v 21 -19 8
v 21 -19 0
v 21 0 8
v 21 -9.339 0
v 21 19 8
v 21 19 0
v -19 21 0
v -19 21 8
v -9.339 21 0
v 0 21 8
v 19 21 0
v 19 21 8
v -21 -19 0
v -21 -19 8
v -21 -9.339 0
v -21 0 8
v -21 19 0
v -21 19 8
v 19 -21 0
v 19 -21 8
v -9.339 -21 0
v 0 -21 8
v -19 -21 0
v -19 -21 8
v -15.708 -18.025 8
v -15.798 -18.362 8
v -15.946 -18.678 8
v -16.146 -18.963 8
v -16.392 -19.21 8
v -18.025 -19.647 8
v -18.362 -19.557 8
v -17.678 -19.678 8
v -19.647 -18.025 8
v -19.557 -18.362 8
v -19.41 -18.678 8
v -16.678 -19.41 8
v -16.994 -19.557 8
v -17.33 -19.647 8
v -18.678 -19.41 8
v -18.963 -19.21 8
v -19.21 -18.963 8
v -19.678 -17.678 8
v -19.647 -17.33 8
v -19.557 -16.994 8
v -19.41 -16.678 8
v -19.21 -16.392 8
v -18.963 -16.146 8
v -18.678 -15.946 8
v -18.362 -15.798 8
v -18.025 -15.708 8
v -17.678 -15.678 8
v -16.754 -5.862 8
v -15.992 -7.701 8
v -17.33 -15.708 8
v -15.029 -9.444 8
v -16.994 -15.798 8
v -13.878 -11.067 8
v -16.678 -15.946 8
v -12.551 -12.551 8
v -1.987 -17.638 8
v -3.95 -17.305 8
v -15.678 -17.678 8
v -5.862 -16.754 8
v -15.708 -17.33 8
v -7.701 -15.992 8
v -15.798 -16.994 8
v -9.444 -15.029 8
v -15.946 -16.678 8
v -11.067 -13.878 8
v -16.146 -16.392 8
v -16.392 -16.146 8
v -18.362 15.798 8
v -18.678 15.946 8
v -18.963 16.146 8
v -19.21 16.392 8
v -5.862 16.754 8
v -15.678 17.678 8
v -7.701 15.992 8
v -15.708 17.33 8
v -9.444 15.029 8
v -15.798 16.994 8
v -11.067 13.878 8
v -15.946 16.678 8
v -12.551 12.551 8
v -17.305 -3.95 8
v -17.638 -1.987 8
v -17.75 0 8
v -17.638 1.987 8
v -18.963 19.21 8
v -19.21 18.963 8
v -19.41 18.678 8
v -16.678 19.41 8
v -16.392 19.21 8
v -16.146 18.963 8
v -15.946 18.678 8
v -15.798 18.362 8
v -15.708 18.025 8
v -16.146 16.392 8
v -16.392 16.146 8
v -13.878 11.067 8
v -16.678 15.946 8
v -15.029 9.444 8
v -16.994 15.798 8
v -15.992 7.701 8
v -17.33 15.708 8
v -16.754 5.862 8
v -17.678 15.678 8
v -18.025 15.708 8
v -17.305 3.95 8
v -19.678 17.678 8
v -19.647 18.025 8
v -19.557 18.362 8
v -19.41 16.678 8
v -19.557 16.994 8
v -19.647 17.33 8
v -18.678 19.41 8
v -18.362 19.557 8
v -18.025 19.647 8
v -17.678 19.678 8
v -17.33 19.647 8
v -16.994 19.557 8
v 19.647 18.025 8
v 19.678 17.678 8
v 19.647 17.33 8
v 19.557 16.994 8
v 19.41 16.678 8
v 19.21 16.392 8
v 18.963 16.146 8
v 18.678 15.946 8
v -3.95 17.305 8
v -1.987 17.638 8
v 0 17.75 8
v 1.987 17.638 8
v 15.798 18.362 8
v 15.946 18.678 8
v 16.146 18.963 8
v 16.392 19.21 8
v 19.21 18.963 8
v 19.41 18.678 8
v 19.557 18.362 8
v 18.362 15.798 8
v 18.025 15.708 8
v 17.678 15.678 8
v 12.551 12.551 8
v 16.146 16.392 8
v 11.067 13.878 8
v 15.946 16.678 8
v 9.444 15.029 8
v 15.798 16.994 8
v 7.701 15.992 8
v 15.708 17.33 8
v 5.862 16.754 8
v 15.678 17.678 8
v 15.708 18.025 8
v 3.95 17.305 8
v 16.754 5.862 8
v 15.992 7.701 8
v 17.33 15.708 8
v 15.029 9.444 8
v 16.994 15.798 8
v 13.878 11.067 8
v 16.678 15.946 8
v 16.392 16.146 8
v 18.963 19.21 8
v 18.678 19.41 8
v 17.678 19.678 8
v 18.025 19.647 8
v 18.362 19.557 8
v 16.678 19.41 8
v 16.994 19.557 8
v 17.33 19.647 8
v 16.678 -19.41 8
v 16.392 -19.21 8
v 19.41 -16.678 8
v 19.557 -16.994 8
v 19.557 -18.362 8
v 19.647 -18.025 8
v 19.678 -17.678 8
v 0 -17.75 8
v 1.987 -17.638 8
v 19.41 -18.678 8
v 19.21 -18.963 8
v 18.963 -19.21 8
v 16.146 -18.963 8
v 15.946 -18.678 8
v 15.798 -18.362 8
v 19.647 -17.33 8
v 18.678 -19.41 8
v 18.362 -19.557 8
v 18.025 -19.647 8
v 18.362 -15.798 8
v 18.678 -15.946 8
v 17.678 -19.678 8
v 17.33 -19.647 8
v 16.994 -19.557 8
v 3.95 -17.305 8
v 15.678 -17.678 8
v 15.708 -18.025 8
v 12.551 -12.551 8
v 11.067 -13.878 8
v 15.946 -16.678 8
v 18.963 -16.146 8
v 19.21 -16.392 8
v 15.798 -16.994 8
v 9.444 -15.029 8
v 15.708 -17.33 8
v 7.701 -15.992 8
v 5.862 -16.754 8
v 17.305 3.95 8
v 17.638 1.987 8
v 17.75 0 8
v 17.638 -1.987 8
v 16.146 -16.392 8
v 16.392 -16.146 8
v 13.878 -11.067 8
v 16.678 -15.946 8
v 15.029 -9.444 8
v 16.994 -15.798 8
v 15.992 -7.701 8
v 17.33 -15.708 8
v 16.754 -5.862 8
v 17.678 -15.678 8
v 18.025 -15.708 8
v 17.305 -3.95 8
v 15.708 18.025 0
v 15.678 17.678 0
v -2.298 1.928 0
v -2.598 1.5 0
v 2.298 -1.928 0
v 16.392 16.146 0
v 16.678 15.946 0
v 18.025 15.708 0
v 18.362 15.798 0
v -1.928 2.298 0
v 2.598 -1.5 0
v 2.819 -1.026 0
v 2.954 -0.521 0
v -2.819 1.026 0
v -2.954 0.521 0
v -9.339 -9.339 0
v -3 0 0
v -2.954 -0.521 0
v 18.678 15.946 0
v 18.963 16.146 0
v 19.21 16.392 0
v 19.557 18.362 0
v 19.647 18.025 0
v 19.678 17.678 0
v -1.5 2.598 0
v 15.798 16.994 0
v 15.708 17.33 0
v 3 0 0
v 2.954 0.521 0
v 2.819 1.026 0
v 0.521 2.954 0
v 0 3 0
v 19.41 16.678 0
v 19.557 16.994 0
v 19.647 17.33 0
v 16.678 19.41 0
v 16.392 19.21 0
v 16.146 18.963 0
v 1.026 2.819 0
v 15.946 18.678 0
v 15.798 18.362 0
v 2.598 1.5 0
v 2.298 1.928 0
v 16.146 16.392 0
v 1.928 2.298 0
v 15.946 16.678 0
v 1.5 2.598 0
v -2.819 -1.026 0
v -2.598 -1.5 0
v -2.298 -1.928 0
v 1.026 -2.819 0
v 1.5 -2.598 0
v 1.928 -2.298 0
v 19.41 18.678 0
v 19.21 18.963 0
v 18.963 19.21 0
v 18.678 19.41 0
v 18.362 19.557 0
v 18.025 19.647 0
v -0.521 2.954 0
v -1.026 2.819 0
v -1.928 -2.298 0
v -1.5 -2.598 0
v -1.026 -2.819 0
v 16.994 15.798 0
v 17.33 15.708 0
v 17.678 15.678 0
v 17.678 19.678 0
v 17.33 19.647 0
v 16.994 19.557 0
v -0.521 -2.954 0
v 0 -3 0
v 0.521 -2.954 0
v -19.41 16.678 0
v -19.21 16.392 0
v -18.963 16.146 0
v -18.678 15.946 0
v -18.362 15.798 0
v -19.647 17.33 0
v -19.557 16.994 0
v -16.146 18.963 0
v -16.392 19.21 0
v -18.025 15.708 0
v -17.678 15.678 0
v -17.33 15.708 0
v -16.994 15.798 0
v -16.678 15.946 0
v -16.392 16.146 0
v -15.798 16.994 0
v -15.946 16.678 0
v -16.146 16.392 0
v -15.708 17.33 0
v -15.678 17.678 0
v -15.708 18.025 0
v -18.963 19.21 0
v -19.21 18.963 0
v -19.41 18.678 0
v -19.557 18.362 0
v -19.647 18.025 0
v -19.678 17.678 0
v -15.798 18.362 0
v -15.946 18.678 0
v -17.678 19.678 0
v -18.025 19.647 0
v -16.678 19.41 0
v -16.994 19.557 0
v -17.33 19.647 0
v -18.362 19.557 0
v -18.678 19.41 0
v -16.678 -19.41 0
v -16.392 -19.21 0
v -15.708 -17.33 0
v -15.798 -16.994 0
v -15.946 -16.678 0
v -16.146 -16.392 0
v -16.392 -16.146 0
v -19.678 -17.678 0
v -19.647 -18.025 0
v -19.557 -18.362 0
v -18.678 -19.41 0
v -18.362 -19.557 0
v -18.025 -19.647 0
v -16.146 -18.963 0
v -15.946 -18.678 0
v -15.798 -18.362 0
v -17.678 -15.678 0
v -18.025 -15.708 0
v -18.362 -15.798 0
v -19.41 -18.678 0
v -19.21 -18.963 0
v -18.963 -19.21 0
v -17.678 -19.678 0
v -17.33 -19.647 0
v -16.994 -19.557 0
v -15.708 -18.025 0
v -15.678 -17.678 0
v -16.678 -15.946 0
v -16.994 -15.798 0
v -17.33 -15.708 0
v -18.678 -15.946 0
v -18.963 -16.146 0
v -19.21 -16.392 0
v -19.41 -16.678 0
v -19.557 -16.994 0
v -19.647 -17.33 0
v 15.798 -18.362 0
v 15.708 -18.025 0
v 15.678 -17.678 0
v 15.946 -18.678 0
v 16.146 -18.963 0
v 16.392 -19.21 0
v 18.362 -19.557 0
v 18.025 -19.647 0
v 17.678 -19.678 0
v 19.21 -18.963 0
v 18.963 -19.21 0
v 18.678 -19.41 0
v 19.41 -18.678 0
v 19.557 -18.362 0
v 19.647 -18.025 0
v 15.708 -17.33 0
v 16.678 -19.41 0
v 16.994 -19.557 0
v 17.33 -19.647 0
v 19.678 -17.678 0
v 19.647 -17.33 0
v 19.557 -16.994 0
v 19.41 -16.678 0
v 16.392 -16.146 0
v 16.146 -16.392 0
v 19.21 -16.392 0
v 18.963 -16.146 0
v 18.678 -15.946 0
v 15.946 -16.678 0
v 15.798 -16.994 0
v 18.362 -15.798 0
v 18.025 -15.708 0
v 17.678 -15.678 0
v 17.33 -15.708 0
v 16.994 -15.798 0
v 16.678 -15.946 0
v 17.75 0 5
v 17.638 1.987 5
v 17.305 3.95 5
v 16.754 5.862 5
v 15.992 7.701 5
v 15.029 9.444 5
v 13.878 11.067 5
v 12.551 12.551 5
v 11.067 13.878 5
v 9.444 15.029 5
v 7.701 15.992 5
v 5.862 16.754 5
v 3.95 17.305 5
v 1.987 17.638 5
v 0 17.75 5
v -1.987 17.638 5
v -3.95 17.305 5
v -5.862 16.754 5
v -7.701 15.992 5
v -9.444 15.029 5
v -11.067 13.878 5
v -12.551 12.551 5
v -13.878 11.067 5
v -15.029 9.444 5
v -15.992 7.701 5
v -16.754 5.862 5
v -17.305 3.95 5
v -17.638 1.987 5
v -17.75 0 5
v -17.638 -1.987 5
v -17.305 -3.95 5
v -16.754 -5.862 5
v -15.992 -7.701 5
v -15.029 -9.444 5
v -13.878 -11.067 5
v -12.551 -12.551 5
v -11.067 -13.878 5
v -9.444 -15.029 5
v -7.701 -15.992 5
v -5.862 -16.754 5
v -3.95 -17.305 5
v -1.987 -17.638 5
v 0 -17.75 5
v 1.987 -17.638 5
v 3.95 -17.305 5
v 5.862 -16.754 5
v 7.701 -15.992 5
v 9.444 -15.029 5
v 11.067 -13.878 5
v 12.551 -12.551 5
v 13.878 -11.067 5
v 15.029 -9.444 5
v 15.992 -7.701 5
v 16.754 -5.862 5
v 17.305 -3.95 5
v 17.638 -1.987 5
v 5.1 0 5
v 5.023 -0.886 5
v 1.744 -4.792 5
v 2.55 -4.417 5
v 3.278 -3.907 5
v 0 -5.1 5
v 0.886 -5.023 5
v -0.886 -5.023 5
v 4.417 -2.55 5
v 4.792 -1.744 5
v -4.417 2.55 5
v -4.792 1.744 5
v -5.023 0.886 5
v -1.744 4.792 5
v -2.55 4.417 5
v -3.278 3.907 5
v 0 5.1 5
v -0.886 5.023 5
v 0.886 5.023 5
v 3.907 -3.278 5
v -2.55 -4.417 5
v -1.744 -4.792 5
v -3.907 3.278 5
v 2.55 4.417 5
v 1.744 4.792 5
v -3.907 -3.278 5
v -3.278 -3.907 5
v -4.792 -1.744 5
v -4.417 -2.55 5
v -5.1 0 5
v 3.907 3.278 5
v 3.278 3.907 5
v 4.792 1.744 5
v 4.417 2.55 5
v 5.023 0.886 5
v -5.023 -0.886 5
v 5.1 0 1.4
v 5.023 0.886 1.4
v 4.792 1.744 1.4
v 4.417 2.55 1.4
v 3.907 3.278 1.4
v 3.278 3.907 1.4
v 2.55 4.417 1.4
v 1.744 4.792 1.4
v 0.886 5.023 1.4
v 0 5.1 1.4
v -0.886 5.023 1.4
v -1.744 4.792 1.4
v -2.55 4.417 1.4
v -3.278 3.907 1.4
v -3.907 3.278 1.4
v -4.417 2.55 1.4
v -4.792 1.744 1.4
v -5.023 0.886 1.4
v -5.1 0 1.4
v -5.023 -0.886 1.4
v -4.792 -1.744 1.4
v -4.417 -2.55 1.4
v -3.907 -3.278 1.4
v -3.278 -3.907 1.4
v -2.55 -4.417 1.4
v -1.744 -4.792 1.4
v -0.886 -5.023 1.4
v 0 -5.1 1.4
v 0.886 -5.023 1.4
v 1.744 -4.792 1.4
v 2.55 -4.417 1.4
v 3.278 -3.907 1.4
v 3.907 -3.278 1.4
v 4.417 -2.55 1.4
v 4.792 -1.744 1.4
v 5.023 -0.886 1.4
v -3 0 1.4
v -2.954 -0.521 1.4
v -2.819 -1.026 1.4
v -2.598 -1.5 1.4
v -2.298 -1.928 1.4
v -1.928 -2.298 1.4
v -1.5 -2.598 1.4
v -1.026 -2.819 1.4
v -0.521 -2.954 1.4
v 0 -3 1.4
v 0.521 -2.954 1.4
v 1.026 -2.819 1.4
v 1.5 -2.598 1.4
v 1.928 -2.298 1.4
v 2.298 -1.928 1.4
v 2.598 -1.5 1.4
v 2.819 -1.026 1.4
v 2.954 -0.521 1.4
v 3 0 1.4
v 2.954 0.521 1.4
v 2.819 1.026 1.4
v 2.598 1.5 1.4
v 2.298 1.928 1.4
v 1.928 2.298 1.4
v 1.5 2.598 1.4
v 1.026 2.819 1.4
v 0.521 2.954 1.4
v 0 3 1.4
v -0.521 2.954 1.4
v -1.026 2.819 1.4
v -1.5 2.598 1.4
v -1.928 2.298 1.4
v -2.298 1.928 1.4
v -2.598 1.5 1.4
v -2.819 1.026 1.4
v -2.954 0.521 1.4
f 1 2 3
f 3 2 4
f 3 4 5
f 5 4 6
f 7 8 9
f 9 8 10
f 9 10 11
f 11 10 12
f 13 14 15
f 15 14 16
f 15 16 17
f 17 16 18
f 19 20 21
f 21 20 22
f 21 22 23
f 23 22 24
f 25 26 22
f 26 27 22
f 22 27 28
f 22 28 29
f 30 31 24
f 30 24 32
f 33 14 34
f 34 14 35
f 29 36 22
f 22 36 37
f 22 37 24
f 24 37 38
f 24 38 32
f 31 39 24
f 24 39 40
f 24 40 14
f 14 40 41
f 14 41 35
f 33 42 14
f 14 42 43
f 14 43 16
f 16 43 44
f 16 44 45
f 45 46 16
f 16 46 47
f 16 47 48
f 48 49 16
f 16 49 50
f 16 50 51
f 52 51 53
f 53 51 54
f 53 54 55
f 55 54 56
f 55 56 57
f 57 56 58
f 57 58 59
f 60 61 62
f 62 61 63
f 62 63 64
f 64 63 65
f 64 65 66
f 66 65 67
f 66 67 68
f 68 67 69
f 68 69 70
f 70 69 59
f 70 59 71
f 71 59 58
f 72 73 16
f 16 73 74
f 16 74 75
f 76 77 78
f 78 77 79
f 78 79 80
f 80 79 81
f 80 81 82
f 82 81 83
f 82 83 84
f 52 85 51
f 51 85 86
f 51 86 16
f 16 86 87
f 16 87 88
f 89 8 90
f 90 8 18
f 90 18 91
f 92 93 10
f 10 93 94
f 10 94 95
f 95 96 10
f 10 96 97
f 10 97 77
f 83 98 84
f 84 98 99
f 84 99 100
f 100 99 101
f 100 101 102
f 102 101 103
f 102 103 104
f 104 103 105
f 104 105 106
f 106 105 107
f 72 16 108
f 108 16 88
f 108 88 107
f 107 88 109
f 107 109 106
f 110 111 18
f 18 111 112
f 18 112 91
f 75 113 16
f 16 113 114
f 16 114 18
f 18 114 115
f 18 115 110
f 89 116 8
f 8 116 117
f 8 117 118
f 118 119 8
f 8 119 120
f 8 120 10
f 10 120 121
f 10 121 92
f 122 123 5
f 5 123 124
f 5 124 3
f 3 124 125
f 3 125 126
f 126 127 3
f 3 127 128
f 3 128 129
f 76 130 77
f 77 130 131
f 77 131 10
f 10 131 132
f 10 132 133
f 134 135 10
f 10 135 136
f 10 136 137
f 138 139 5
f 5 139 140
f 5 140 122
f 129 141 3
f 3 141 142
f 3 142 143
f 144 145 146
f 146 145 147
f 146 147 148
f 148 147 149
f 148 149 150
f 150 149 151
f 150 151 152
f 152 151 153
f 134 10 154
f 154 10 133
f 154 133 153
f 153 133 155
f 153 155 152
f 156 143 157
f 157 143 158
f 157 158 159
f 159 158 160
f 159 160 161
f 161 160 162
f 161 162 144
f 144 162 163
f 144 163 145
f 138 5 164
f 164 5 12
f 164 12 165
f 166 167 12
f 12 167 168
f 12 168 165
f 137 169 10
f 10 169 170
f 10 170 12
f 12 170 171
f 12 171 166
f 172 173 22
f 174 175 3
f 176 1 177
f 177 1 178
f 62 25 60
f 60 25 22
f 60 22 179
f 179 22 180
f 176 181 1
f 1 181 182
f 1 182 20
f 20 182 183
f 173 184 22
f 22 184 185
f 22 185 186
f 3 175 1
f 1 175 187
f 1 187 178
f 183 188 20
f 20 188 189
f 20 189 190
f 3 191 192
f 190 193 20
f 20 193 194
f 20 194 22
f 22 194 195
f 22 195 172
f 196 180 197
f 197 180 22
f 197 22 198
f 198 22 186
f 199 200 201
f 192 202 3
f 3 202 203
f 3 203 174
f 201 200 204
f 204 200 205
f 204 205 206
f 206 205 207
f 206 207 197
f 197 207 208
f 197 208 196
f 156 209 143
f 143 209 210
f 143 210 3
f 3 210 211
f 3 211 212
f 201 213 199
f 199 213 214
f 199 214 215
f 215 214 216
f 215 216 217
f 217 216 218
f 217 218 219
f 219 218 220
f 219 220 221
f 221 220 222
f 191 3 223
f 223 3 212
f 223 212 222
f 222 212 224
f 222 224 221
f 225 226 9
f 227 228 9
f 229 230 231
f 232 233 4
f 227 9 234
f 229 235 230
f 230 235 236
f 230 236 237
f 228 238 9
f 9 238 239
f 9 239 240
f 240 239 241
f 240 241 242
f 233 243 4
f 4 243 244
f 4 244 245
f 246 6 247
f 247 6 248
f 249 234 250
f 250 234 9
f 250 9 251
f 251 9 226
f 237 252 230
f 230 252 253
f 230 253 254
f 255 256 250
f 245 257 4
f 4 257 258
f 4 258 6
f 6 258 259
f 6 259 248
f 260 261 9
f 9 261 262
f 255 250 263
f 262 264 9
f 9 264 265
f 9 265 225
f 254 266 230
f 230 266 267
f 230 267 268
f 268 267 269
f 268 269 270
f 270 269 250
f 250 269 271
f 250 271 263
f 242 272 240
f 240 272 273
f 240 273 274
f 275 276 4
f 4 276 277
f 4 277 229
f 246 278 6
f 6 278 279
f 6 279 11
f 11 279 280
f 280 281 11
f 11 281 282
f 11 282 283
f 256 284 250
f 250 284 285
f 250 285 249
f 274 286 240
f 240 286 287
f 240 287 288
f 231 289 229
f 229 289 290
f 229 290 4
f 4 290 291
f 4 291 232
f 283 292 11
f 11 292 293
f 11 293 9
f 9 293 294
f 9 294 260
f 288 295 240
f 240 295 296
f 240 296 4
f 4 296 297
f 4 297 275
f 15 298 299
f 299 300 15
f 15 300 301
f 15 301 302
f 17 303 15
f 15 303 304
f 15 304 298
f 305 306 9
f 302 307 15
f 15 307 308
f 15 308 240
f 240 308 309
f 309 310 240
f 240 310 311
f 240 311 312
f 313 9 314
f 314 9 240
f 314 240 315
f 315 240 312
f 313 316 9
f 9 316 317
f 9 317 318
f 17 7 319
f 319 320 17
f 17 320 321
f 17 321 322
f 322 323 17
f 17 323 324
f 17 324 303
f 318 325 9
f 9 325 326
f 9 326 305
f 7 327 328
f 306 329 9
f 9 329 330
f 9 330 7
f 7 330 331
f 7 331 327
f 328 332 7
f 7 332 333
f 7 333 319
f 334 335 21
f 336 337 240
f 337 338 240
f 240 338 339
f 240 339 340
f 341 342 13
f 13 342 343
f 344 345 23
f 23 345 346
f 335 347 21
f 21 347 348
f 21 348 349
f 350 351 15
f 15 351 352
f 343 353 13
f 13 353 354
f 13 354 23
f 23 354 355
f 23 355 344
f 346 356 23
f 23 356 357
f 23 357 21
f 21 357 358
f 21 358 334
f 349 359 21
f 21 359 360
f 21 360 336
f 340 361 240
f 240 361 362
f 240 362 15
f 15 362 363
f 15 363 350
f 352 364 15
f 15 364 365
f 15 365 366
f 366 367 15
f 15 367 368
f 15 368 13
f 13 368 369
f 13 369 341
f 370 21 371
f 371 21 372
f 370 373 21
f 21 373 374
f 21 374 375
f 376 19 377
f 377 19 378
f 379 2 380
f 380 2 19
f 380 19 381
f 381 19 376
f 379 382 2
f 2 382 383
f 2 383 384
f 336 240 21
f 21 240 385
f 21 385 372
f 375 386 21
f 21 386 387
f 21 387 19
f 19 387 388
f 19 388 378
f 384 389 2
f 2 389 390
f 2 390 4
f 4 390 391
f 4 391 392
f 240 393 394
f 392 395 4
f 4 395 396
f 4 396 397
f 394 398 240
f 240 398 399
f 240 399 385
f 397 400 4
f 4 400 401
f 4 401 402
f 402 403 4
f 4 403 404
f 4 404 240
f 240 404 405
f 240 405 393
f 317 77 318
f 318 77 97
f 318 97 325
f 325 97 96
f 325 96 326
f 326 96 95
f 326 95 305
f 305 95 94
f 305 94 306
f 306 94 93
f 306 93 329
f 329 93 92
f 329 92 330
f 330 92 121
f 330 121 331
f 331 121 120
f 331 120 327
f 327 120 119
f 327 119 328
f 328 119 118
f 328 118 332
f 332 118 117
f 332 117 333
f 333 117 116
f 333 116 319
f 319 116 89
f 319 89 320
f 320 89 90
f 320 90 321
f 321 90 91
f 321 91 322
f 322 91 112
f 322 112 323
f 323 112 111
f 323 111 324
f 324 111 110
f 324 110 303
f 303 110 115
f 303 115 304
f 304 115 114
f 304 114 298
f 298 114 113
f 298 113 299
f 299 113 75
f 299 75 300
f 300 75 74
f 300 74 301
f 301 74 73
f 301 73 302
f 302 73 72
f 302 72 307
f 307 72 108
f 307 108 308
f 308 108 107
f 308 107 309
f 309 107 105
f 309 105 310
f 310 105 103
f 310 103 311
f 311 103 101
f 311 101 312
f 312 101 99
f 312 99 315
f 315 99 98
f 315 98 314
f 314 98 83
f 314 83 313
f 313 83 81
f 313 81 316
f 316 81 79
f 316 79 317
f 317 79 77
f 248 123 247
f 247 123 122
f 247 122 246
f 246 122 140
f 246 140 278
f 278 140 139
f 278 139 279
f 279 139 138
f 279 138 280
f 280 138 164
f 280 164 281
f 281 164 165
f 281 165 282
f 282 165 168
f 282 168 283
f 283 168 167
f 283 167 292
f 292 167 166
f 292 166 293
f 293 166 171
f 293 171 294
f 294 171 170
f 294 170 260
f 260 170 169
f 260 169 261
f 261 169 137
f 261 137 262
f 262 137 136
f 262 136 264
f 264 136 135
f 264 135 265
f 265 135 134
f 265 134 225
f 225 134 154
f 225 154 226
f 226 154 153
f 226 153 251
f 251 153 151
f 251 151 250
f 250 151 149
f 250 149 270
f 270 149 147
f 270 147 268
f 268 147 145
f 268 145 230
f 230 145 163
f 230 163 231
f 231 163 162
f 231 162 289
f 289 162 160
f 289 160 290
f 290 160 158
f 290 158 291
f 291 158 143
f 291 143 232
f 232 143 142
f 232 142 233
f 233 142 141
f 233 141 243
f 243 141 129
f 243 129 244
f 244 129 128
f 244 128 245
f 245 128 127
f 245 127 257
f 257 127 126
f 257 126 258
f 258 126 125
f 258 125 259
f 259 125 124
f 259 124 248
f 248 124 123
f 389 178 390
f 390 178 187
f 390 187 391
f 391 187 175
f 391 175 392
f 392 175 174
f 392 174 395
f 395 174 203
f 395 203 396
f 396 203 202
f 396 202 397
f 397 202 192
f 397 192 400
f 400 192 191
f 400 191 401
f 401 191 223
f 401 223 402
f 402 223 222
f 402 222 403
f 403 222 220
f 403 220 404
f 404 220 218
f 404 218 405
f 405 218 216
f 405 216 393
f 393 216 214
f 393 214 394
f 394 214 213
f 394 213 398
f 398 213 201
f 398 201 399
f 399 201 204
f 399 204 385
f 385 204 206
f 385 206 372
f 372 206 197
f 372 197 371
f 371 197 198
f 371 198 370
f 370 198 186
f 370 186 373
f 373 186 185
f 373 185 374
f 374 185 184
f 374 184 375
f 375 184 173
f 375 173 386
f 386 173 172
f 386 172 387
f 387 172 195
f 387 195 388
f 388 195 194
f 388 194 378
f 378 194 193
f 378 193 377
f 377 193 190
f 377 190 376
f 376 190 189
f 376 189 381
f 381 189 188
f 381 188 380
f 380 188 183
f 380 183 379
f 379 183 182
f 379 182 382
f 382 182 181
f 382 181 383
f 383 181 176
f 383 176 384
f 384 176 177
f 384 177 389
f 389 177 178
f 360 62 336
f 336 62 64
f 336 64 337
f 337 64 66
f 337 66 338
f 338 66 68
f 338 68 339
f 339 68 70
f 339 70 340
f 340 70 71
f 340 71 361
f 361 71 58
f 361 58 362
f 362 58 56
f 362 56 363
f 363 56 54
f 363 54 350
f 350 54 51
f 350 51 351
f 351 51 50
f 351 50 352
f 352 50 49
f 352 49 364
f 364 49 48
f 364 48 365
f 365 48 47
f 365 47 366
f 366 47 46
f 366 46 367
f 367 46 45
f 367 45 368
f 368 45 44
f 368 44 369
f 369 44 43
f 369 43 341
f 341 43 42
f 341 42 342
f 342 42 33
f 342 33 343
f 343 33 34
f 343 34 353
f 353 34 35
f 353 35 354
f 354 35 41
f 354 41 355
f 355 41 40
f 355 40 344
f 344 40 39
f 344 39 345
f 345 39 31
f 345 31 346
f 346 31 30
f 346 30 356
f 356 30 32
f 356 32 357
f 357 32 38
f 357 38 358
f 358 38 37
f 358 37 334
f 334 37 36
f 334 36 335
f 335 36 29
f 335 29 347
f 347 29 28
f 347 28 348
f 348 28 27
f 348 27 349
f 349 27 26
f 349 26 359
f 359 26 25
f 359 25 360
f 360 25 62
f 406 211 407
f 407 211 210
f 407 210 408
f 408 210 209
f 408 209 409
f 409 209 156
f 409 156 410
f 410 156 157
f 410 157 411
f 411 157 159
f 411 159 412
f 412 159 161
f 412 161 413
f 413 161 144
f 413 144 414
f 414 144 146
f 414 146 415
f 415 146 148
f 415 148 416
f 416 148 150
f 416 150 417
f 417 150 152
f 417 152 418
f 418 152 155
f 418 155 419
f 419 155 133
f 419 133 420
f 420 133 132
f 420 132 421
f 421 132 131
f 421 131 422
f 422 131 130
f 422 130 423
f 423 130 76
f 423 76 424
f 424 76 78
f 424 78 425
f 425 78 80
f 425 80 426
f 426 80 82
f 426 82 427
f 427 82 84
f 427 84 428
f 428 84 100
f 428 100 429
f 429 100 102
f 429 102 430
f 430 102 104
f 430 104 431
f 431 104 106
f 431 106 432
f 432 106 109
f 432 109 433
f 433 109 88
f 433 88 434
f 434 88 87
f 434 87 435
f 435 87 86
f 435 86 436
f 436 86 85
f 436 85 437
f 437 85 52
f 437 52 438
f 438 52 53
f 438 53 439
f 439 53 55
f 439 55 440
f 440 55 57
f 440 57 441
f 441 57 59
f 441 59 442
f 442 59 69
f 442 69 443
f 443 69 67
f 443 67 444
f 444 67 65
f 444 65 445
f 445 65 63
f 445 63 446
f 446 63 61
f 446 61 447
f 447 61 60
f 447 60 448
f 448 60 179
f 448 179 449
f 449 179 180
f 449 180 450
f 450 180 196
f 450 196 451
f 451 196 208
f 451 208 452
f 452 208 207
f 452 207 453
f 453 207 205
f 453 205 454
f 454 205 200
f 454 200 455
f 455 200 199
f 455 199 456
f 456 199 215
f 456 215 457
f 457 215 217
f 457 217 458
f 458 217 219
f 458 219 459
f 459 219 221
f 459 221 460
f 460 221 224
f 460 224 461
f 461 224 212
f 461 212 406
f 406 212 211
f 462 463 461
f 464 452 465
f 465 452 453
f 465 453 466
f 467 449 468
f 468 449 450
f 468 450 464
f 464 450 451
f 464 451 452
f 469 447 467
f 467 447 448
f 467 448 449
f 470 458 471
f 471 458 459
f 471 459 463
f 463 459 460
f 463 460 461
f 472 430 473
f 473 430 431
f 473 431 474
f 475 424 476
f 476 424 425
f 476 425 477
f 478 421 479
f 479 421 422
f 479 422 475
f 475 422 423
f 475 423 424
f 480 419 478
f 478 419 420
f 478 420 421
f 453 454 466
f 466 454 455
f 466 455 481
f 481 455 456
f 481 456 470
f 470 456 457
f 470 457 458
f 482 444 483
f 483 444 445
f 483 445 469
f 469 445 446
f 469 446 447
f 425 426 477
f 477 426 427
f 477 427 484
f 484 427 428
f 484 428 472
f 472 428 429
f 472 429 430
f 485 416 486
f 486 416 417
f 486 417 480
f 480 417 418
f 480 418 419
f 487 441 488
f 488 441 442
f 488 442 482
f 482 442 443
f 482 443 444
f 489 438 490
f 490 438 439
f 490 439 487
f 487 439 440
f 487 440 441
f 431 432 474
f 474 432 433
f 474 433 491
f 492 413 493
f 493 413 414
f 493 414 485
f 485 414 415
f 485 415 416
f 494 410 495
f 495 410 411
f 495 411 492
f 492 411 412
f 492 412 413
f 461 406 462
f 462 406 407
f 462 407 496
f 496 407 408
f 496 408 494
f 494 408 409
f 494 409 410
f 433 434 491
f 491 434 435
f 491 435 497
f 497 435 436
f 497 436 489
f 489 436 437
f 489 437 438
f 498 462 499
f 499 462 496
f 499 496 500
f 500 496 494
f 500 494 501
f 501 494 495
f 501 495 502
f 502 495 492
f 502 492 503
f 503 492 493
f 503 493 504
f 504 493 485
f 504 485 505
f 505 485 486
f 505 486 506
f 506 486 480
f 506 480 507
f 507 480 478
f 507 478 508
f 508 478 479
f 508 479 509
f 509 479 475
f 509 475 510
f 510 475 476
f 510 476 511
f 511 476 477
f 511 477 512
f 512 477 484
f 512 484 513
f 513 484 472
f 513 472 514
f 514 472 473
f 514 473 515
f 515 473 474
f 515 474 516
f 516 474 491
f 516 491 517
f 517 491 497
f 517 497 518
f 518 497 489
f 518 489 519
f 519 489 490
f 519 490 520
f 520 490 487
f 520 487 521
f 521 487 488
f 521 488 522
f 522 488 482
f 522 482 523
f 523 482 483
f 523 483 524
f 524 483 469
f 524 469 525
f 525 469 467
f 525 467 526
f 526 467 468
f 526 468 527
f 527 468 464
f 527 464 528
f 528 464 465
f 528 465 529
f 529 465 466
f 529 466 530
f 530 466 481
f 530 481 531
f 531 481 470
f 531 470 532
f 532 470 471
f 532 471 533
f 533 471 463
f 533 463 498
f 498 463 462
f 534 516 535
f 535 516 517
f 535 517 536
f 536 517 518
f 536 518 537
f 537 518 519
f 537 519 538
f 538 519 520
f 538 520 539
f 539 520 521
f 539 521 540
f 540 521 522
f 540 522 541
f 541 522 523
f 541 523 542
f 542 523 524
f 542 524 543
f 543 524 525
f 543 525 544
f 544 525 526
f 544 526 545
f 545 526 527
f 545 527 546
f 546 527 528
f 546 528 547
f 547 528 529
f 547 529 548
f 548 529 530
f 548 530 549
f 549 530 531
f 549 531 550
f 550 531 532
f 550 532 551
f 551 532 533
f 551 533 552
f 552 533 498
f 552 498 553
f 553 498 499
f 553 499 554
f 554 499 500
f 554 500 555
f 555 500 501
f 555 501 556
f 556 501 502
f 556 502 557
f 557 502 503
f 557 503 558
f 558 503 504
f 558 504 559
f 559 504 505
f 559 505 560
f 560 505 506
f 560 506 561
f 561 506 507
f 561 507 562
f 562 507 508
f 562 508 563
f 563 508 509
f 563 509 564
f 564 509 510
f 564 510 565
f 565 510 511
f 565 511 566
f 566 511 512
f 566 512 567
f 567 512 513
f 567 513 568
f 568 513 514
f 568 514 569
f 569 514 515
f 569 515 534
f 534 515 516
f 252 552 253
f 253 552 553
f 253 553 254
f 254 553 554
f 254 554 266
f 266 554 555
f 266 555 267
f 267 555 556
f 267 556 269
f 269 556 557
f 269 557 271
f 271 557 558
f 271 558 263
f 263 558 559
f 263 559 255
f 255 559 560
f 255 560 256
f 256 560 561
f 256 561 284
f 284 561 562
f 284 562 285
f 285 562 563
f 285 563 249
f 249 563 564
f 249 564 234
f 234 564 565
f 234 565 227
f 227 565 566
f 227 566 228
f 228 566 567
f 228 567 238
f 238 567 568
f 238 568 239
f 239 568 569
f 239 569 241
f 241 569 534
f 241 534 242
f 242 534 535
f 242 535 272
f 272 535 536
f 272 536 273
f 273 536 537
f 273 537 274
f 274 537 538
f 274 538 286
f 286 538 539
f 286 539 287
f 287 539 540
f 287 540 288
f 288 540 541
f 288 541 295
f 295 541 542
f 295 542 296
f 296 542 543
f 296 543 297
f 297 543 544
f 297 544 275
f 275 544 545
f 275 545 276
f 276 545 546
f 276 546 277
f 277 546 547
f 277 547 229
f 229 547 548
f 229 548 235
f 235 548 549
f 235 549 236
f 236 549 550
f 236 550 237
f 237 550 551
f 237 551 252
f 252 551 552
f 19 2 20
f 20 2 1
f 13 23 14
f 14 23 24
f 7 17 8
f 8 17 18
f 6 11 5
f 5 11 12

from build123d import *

# Parameters (mm, degrees)
SKETCH_1_W          = 42
SKETCH_1_H          = 42
EXTRUDE_1_DEPTH     = 8
CUT_EXTRUDE_1_REACH = 10
SKETCH_2_R          = 2
SKETCH_3_R          = 17.75
CUT_EXTRUDE_2_DEPTH = 3
SKETCH_4_R          = 5.1
CUT_EXTRUDE_3_DEPTH = 3.6
CUT_EXTRUDE_4_REACH = 3.4
SKETCH_5_R          = 3
CHAMFER_1_SIZE      = 2


with BuildPart() as part:
    # 草图1 → 凸台-拉伸1 (new body)
    with BuildSketch(Plane.XY):
        Rectangle(SKETCH_1_W, SKETCH_1_H)
    extrude(amount=EXTRUDE_1_DEPTH)

    # 草图2 → 切除-拉伸1 (cut, up to next)
    with BuildSketch(Plane.XY.offset(8), mode=Mode.PRIVATE) as cut_extrude_1_sk1:
        with Locations((-17.67766953, 17.67766953)):
            Circle(SKETCH_2_R)
    cut_extrude_1_tool1 = extrude(cut_extrude_1_sk1.sketch, amount=-CUT_EXTRUDE_1_REACH, mode=Mode.PRIVATE) & part.part
    add(cut_extrude_1_tool1.solids().sort_by_distance((-17.67767, 17.67767, 8))[0], mode=Mode.SUBTRACT)
    # 草图2 → 切除-拉伸1 (cut, up to next)
    with BuildSketch(Plane.XY.offset(8), mode=Mode.PRIVATE) as cut_extrude_1_sk2:
        with Locations((17.67766953, 17.67766953)):
            Circle(SKETCH_2_R)
    cut_extrude_1_tool2 = extrude(cut_extrude_1_sk2.sketch, amount=-CUT_EXTRUDE_1_REACH, mode=Mode.PRIVATE) & part.part
    add(cut_extrude_1_tool2.solids().sort_by_distance((17.67767, 17.67767, 8))[0], mode=Mode.SUBTRACT)
    # 草图2 → 切除-拉伸1 (cut, up to next)
    with BuildSketch(Plane.XY.offset(8), mode=Mode.PRIVATE) as cut_extrude_1_sk3:
        with Locations((17.67766953, -17.67766953)):
            Circle(SKETCH_2_R)
    cut_extrude_1_tool3 = extrude(cut_extrude_1_sk3.sketch, amount=-CUT_EXTRUDE_1_REACH, mode=Mode.PRIVATE) & part.part
    add(cut_extrude_1_tool3.solids().sort_by_distance((17.67767, -17.67767, 8))[0], mode=Mode.SUBTRACT)
    # 草图2 → 切除-拉伸1 (cut, up to next)
    with BuildSketch(Plane.XY.offset(8), mode=Mode.PRIVATE) as cut_extrude_1_sk4:
        with Locations((-17.67766953, -17.67766953)):
            Circle(SKETCH_2_R)
    cut_extrude_1_tool4 = extrude(cut_extrude_1_sk4.sketch, amount=-CUT_EXTRUDE_1_REACH, mode=Mode.PRIVATE) & part.part
    add(cut_extrude_1_tool4.solids().sort_by_distance((-17.67767, -17.67767, 8))[0], mode=Mode.SUBTRACT)

    # 草图3 → 切除-拉伸2 (cut)
    with BuildSketch(Plane.XY.offset(8)):
        Circle(SKETCH_3_R)
    extrude(amount=-CUT_EXTRUDE_2_DEPTH, mode=Mode.SUBTRACT)

    # 草图4 → 切除-拉伸3 (cut)
    with BuildSketch(Plane.XY.offset(5)):
        Circle(SKETCH_4_R)
    extrude(amount=-CUT_EXTRUDE_3_DEPTH, mode=Mode.SUBTRACT)

    # 草图5 → 切除-拉伸4 (cut, up to next)
    with BuildSketch(Plane.XY.offset(1.4), mode=Mode.PRIVATE) as cut_extrude_4_sk1:
        Circle(SKETCH_5_R)
    cut_extrude_4_tool1 = extrude(cut_extrude_4_sk1.sketch, amount=-CUT_EXTRUDE_4_REACH, mode=Mode.PRIVATE) & part.part
    add(cut_extrude_4_tool1.solids().sort_by_distance((0, 0, 1.4))[0], mode=Mode.SUBTRACT)

    # 倒角1
    chamfer_1_edges = [part.edges().sort_by_distance(p)[0] for p in [
        (21, -21, 4),
        (-21, -21, 4),
        (-21, 21, 4),
        (21, 21, 4),
    ]]
    chamfer(chamfer_1_edges, length=CHAMFER_1_SIZE)


solid = part.part
